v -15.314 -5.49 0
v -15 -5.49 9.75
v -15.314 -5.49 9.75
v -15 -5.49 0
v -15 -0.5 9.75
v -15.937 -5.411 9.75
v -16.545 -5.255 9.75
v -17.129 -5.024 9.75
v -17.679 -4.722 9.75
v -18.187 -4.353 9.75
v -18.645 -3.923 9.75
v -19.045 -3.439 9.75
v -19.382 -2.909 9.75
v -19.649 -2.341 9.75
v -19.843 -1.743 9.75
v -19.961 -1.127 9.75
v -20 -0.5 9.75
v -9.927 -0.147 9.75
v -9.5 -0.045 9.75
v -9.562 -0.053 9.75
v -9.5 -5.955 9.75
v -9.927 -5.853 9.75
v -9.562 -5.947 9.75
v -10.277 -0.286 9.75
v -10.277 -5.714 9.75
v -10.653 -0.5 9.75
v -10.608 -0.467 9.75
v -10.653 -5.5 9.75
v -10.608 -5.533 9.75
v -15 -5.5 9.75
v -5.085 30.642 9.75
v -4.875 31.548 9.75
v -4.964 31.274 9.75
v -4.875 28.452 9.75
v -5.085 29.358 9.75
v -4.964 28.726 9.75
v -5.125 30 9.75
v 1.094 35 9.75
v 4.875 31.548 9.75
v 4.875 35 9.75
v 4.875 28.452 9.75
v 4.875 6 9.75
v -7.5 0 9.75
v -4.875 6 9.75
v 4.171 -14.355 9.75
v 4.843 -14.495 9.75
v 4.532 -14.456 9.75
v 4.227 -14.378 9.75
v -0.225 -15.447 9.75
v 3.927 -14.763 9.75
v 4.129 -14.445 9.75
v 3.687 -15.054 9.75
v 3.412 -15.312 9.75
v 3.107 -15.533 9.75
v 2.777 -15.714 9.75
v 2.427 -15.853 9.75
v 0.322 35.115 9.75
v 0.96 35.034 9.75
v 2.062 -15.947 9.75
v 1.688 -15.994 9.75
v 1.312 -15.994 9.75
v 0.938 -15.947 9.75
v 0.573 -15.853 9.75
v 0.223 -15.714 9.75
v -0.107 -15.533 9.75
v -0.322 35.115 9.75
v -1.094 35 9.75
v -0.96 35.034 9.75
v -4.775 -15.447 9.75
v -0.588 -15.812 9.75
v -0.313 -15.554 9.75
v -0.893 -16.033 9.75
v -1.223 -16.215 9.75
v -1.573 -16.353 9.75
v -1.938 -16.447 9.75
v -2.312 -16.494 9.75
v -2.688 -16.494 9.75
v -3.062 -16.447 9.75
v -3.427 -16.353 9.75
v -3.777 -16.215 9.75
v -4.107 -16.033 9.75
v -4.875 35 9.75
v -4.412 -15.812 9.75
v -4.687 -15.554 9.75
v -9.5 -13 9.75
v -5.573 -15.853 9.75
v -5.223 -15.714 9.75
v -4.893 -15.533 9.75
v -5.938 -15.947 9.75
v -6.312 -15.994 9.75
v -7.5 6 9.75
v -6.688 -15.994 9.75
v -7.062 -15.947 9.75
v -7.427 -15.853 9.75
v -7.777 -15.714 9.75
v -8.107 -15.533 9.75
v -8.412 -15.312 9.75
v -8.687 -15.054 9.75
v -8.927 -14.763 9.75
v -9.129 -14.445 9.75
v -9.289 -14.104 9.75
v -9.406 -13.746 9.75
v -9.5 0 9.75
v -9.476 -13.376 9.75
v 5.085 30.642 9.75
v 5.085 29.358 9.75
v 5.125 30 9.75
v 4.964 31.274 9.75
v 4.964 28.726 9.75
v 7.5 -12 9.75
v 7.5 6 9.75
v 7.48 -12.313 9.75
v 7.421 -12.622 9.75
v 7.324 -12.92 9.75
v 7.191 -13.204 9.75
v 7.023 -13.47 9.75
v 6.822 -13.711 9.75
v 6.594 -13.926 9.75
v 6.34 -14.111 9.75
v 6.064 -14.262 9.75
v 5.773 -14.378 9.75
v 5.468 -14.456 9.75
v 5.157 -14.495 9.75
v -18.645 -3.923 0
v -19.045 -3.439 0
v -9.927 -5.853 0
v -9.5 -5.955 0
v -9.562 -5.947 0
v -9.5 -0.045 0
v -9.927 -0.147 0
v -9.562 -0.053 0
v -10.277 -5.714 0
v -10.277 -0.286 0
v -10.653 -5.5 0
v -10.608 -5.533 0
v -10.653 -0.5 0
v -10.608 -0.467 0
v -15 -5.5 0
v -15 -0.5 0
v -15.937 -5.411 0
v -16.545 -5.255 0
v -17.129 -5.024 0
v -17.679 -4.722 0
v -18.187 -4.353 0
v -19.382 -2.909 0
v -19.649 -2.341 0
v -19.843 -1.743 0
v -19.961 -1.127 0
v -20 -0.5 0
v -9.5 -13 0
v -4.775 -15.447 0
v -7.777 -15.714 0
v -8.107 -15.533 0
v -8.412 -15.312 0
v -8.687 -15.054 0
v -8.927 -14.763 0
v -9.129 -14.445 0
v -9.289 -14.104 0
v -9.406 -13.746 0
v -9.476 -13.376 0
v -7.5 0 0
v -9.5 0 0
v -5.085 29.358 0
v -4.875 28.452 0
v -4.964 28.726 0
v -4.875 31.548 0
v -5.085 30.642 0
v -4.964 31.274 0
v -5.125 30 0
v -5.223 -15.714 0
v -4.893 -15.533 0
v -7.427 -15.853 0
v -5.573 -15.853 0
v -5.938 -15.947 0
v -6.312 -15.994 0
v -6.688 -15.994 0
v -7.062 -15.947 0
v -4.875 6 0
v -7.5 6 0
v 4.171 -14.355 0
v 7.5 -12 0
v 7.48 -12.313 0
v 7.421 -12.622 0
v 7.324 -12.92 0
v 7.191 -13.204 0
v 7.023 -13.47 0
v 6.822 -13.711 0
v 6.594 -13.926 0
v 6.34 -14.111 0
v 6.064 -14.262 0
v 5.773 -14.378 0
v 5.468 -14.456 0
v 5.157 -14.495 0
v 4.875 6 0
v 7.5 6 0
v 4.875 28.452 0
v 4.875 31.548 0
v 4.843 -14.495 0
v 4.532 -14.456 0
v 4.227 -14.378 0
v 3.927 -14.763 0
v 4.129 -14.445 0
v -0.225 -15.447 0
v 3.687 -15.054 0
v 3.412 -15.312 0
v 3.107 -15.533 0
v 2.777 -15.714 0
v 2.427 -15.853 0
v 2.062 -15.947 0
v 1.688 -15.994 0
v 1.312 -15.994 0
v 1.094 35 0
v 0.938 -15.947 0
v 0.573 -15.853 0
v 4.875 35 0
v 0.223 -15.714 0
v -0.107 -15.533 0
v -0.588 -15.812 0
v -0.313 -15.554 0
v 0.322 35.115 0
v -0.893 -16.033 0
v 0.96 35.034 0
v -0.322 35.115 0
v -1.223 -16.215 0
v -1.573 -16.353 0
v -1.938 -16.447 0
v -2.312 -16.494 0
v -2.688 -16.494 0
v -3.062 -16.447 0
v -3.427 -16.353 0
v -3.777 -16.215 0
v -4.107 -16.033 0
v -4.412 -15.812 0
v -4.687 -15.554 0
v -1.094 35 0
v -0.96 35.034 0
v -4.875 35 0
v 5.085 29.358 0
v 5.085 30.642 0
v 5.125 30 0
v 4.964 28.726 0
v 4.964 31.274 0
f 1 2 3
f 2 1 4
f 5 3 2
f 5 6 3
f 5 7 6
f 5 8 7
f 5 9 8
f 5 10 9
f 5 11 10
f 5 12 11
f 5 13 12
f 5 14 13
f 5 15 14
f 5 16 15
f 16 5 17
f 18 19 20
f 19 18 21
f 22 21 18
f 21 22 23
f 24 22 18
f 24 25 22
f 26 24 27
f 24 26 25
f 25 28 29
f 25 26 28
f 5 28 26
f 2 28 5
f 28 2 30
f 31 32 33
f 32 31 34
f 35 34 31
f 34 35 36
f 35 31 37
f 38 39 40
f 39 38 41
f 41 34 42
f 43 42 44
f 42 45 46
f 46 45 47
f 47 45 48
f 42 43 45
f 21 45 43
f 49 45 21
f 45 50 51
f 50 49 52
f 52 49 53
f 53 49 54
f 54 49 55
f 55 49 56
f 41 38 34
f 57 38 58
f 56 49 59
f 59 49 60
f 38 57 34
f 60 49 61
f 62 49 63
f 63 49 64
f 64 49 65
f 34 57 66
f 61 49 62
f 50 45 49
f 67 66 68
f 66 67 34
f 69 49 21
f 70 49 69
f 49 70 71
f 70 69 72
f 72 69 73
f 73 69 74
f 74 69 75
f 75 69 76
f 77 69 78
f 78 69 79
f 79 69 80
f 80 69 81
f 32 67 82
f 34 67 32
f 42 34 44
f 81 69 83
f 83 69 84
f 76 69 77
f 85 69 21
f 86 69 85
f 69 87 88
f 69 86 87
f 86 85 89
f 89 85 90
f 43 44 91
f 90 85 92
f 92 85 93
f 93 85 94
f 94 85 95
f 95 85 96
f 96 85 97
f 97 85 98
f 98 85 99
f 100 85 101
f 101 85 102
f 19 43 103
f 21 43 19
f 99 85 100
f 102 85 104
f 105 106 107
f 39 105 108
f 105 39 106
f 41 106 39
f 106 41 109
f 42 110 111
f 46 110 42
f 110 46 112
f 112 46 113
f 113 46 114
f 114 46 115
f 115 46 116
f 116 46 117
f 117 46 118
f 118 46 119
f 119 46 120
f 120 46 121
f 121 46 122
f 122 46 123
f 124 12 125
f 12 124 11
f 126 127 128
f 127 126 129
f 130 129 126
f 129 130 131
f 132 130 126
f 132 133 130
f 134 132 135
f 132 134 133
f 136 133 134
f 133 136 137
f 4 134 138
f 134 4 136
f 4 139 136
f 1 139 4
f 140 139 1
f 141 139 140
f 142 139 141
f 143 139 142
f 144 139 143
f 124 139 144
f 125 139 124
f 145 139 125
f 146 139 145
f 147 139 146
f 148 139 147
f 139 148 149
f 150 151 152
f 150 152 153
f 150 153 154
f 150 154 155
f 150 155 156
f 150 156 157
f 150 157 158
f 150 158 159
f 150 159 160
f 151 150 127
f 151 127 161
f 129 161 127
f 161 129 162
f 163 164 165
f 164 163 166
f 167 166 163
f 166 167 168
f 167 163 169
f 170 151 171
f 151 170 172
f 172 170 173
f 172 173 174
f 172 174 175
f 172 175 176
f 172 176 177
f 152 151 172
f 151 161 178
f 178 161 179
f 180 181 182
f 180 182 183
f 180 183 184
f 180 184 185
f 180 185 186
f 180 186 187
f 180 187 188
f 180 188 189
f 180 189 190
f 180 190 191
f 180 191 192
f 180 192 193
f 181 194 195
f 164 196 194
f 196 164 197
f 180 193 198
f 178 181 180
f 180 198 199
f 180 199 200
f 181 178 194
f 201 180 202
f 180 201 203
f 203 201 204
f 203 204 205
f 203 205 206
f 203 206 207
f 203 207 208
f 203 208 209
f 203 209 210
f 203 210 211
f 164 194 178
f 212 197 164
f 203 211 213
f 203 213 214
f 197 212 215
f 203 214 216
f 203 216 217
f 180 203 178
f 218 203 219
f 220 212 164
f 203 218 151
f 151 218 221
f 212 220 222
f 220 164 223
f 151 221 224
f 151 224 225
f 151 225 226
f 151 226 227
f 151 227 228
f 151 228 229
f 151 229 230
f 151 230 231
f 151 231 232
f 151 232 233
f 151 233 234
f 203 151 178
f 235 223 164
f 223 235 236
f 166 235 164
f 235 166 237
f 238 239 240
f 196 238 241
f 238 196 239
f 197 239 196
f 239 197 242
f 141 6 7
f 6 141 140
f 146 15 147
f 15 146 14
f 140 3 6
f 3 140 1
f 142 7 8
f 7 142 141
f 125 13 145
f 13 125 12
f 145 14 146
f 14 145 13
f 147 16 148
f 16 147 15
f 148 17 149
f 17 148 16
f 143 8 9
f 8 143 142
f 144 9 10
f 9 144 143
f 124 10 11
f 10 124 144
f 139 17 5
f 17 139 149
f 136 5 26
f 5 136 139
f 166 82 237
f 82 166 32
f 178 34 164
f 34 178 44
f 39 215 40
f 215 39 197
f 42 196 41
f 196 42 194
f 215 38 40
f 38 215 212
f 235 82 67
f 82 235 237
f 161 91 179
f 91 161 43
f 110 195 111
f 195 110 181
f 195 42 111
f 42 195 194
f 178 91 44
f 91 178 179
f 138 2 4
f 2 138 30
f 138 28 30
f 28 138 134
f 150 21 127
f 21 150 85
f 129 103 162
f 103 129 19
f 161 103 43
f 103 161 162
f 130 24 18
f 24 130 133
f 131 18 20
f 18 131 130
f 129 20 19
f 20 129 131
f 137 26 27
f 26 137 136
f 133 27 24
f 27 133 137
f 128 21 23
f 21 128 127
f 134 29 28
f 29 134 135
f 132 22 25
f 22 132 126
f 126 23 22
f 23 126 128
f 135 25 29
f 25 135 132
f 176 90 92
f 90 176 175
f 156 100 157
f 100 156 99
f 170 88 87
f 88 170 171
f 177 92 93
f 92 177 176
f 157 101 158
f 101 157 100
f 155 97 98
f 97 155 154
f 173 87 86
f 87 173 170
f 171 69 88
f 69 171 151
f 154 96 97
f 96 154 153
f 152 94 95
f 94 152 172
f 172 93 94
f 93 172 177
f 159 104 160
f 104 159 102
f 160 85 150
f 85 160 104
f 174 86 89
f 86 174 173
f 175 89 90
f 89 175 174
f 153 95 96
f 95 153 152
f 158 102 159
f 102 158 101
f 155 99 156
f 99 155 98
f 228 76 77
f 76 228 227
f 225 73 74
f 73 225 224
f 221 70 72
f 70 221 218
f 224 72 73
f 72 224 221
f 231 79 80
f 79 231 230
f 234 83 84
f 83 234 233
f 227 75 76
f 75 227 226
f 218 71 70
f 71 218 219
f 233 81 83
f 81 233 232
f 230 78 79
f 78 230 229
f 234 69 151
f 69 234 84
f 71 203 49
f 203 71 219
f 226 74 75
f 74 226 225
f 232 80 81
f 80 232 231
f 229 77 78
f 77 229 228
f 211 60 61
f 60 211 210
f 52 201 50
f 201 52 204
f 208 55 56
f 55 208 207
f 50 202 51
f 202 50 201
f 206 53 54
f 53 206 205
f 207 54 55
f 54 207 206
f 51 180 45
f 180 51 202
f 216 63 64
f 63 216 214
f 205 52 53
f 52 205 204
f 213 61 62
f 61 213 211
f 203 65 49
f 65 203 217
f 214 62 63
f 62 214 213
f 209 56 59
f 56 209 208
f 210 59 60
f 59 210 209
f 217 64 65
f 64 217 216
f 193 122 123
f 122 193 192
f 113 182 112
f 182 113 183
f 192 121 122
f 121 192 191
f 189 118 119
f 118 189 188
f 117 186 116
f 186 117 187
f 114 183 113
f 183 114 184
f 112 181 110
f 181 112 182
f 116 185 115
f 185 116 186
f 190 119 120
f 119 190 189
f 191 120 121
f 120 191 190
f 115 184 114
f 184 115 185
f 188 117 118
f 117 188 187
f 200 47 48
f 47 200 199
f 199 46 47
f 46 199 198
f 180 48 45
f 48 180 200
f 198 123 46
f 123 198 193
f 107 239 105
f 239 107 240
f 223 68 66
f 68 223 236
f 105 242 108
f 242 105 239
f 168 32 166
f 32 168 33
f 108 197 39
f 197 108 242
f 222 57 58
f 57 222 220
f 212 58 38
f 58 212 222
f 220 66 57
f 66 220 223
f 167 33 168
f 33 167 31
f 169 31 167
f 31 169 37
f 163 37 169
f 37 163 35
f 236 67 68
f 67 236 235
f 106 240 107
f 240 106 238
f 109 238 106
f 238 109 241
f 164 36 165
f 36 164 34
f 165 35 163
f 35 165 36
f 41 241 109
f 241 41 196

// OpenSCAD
// thumbsup insert (need 2 items)

// clearance
tol = 0.25;

// innere insert parameters
iih = 10;
iiw = 10;
iil = 20;

// outer insert parameters
iod = 15;
ioh = iih;
irh = iih;
irw = 15;
irl = 6;

real_h = iih - tol;

translate([-(iiw - tol) / 2, 0, 0]) cube([iiw - tol, iil + irw, real_h]);
translate([-irw / 2, -irl, 0]) cube([irw, irl * 2, real_h]);

translate([-15, -5.5, 0]) cube([5, 5, real_h]);
translate([-15, -0.5, 0]) difference() {
	cylinder(d = 10, h = real_h, $fn = 50);
	translate([-5, 0, 0]) cube([10, 5, real_h]);
}

translate([-9.5, -12, 0]) cube([17, 12, real_h]);
translate([-9.5, -13, 0]) cube([4, 4, real_h]);
translate([-9, -3, 0]) cylinder(d = 6, h = real_h, $fn = 50);
translate([-6.5, -13, 0]) cylinder(d = 6, h = real_h, $fn = 50);
translate([-2.5, -13.5, 0]) cylinder(d = 6, h = real_h, $fn = 50);
translate([1.5, -13, 0]) cylinder(d = 6, h = real_h, $fn = 50);
translate([5, -12, 0]) cylinder(d = 5, h = real_h, $fn = 50);

translate([0, iil + irw - iih / 2, 0]) cylinder(d = iiw + tol, h = real_h, $fn = 50);
